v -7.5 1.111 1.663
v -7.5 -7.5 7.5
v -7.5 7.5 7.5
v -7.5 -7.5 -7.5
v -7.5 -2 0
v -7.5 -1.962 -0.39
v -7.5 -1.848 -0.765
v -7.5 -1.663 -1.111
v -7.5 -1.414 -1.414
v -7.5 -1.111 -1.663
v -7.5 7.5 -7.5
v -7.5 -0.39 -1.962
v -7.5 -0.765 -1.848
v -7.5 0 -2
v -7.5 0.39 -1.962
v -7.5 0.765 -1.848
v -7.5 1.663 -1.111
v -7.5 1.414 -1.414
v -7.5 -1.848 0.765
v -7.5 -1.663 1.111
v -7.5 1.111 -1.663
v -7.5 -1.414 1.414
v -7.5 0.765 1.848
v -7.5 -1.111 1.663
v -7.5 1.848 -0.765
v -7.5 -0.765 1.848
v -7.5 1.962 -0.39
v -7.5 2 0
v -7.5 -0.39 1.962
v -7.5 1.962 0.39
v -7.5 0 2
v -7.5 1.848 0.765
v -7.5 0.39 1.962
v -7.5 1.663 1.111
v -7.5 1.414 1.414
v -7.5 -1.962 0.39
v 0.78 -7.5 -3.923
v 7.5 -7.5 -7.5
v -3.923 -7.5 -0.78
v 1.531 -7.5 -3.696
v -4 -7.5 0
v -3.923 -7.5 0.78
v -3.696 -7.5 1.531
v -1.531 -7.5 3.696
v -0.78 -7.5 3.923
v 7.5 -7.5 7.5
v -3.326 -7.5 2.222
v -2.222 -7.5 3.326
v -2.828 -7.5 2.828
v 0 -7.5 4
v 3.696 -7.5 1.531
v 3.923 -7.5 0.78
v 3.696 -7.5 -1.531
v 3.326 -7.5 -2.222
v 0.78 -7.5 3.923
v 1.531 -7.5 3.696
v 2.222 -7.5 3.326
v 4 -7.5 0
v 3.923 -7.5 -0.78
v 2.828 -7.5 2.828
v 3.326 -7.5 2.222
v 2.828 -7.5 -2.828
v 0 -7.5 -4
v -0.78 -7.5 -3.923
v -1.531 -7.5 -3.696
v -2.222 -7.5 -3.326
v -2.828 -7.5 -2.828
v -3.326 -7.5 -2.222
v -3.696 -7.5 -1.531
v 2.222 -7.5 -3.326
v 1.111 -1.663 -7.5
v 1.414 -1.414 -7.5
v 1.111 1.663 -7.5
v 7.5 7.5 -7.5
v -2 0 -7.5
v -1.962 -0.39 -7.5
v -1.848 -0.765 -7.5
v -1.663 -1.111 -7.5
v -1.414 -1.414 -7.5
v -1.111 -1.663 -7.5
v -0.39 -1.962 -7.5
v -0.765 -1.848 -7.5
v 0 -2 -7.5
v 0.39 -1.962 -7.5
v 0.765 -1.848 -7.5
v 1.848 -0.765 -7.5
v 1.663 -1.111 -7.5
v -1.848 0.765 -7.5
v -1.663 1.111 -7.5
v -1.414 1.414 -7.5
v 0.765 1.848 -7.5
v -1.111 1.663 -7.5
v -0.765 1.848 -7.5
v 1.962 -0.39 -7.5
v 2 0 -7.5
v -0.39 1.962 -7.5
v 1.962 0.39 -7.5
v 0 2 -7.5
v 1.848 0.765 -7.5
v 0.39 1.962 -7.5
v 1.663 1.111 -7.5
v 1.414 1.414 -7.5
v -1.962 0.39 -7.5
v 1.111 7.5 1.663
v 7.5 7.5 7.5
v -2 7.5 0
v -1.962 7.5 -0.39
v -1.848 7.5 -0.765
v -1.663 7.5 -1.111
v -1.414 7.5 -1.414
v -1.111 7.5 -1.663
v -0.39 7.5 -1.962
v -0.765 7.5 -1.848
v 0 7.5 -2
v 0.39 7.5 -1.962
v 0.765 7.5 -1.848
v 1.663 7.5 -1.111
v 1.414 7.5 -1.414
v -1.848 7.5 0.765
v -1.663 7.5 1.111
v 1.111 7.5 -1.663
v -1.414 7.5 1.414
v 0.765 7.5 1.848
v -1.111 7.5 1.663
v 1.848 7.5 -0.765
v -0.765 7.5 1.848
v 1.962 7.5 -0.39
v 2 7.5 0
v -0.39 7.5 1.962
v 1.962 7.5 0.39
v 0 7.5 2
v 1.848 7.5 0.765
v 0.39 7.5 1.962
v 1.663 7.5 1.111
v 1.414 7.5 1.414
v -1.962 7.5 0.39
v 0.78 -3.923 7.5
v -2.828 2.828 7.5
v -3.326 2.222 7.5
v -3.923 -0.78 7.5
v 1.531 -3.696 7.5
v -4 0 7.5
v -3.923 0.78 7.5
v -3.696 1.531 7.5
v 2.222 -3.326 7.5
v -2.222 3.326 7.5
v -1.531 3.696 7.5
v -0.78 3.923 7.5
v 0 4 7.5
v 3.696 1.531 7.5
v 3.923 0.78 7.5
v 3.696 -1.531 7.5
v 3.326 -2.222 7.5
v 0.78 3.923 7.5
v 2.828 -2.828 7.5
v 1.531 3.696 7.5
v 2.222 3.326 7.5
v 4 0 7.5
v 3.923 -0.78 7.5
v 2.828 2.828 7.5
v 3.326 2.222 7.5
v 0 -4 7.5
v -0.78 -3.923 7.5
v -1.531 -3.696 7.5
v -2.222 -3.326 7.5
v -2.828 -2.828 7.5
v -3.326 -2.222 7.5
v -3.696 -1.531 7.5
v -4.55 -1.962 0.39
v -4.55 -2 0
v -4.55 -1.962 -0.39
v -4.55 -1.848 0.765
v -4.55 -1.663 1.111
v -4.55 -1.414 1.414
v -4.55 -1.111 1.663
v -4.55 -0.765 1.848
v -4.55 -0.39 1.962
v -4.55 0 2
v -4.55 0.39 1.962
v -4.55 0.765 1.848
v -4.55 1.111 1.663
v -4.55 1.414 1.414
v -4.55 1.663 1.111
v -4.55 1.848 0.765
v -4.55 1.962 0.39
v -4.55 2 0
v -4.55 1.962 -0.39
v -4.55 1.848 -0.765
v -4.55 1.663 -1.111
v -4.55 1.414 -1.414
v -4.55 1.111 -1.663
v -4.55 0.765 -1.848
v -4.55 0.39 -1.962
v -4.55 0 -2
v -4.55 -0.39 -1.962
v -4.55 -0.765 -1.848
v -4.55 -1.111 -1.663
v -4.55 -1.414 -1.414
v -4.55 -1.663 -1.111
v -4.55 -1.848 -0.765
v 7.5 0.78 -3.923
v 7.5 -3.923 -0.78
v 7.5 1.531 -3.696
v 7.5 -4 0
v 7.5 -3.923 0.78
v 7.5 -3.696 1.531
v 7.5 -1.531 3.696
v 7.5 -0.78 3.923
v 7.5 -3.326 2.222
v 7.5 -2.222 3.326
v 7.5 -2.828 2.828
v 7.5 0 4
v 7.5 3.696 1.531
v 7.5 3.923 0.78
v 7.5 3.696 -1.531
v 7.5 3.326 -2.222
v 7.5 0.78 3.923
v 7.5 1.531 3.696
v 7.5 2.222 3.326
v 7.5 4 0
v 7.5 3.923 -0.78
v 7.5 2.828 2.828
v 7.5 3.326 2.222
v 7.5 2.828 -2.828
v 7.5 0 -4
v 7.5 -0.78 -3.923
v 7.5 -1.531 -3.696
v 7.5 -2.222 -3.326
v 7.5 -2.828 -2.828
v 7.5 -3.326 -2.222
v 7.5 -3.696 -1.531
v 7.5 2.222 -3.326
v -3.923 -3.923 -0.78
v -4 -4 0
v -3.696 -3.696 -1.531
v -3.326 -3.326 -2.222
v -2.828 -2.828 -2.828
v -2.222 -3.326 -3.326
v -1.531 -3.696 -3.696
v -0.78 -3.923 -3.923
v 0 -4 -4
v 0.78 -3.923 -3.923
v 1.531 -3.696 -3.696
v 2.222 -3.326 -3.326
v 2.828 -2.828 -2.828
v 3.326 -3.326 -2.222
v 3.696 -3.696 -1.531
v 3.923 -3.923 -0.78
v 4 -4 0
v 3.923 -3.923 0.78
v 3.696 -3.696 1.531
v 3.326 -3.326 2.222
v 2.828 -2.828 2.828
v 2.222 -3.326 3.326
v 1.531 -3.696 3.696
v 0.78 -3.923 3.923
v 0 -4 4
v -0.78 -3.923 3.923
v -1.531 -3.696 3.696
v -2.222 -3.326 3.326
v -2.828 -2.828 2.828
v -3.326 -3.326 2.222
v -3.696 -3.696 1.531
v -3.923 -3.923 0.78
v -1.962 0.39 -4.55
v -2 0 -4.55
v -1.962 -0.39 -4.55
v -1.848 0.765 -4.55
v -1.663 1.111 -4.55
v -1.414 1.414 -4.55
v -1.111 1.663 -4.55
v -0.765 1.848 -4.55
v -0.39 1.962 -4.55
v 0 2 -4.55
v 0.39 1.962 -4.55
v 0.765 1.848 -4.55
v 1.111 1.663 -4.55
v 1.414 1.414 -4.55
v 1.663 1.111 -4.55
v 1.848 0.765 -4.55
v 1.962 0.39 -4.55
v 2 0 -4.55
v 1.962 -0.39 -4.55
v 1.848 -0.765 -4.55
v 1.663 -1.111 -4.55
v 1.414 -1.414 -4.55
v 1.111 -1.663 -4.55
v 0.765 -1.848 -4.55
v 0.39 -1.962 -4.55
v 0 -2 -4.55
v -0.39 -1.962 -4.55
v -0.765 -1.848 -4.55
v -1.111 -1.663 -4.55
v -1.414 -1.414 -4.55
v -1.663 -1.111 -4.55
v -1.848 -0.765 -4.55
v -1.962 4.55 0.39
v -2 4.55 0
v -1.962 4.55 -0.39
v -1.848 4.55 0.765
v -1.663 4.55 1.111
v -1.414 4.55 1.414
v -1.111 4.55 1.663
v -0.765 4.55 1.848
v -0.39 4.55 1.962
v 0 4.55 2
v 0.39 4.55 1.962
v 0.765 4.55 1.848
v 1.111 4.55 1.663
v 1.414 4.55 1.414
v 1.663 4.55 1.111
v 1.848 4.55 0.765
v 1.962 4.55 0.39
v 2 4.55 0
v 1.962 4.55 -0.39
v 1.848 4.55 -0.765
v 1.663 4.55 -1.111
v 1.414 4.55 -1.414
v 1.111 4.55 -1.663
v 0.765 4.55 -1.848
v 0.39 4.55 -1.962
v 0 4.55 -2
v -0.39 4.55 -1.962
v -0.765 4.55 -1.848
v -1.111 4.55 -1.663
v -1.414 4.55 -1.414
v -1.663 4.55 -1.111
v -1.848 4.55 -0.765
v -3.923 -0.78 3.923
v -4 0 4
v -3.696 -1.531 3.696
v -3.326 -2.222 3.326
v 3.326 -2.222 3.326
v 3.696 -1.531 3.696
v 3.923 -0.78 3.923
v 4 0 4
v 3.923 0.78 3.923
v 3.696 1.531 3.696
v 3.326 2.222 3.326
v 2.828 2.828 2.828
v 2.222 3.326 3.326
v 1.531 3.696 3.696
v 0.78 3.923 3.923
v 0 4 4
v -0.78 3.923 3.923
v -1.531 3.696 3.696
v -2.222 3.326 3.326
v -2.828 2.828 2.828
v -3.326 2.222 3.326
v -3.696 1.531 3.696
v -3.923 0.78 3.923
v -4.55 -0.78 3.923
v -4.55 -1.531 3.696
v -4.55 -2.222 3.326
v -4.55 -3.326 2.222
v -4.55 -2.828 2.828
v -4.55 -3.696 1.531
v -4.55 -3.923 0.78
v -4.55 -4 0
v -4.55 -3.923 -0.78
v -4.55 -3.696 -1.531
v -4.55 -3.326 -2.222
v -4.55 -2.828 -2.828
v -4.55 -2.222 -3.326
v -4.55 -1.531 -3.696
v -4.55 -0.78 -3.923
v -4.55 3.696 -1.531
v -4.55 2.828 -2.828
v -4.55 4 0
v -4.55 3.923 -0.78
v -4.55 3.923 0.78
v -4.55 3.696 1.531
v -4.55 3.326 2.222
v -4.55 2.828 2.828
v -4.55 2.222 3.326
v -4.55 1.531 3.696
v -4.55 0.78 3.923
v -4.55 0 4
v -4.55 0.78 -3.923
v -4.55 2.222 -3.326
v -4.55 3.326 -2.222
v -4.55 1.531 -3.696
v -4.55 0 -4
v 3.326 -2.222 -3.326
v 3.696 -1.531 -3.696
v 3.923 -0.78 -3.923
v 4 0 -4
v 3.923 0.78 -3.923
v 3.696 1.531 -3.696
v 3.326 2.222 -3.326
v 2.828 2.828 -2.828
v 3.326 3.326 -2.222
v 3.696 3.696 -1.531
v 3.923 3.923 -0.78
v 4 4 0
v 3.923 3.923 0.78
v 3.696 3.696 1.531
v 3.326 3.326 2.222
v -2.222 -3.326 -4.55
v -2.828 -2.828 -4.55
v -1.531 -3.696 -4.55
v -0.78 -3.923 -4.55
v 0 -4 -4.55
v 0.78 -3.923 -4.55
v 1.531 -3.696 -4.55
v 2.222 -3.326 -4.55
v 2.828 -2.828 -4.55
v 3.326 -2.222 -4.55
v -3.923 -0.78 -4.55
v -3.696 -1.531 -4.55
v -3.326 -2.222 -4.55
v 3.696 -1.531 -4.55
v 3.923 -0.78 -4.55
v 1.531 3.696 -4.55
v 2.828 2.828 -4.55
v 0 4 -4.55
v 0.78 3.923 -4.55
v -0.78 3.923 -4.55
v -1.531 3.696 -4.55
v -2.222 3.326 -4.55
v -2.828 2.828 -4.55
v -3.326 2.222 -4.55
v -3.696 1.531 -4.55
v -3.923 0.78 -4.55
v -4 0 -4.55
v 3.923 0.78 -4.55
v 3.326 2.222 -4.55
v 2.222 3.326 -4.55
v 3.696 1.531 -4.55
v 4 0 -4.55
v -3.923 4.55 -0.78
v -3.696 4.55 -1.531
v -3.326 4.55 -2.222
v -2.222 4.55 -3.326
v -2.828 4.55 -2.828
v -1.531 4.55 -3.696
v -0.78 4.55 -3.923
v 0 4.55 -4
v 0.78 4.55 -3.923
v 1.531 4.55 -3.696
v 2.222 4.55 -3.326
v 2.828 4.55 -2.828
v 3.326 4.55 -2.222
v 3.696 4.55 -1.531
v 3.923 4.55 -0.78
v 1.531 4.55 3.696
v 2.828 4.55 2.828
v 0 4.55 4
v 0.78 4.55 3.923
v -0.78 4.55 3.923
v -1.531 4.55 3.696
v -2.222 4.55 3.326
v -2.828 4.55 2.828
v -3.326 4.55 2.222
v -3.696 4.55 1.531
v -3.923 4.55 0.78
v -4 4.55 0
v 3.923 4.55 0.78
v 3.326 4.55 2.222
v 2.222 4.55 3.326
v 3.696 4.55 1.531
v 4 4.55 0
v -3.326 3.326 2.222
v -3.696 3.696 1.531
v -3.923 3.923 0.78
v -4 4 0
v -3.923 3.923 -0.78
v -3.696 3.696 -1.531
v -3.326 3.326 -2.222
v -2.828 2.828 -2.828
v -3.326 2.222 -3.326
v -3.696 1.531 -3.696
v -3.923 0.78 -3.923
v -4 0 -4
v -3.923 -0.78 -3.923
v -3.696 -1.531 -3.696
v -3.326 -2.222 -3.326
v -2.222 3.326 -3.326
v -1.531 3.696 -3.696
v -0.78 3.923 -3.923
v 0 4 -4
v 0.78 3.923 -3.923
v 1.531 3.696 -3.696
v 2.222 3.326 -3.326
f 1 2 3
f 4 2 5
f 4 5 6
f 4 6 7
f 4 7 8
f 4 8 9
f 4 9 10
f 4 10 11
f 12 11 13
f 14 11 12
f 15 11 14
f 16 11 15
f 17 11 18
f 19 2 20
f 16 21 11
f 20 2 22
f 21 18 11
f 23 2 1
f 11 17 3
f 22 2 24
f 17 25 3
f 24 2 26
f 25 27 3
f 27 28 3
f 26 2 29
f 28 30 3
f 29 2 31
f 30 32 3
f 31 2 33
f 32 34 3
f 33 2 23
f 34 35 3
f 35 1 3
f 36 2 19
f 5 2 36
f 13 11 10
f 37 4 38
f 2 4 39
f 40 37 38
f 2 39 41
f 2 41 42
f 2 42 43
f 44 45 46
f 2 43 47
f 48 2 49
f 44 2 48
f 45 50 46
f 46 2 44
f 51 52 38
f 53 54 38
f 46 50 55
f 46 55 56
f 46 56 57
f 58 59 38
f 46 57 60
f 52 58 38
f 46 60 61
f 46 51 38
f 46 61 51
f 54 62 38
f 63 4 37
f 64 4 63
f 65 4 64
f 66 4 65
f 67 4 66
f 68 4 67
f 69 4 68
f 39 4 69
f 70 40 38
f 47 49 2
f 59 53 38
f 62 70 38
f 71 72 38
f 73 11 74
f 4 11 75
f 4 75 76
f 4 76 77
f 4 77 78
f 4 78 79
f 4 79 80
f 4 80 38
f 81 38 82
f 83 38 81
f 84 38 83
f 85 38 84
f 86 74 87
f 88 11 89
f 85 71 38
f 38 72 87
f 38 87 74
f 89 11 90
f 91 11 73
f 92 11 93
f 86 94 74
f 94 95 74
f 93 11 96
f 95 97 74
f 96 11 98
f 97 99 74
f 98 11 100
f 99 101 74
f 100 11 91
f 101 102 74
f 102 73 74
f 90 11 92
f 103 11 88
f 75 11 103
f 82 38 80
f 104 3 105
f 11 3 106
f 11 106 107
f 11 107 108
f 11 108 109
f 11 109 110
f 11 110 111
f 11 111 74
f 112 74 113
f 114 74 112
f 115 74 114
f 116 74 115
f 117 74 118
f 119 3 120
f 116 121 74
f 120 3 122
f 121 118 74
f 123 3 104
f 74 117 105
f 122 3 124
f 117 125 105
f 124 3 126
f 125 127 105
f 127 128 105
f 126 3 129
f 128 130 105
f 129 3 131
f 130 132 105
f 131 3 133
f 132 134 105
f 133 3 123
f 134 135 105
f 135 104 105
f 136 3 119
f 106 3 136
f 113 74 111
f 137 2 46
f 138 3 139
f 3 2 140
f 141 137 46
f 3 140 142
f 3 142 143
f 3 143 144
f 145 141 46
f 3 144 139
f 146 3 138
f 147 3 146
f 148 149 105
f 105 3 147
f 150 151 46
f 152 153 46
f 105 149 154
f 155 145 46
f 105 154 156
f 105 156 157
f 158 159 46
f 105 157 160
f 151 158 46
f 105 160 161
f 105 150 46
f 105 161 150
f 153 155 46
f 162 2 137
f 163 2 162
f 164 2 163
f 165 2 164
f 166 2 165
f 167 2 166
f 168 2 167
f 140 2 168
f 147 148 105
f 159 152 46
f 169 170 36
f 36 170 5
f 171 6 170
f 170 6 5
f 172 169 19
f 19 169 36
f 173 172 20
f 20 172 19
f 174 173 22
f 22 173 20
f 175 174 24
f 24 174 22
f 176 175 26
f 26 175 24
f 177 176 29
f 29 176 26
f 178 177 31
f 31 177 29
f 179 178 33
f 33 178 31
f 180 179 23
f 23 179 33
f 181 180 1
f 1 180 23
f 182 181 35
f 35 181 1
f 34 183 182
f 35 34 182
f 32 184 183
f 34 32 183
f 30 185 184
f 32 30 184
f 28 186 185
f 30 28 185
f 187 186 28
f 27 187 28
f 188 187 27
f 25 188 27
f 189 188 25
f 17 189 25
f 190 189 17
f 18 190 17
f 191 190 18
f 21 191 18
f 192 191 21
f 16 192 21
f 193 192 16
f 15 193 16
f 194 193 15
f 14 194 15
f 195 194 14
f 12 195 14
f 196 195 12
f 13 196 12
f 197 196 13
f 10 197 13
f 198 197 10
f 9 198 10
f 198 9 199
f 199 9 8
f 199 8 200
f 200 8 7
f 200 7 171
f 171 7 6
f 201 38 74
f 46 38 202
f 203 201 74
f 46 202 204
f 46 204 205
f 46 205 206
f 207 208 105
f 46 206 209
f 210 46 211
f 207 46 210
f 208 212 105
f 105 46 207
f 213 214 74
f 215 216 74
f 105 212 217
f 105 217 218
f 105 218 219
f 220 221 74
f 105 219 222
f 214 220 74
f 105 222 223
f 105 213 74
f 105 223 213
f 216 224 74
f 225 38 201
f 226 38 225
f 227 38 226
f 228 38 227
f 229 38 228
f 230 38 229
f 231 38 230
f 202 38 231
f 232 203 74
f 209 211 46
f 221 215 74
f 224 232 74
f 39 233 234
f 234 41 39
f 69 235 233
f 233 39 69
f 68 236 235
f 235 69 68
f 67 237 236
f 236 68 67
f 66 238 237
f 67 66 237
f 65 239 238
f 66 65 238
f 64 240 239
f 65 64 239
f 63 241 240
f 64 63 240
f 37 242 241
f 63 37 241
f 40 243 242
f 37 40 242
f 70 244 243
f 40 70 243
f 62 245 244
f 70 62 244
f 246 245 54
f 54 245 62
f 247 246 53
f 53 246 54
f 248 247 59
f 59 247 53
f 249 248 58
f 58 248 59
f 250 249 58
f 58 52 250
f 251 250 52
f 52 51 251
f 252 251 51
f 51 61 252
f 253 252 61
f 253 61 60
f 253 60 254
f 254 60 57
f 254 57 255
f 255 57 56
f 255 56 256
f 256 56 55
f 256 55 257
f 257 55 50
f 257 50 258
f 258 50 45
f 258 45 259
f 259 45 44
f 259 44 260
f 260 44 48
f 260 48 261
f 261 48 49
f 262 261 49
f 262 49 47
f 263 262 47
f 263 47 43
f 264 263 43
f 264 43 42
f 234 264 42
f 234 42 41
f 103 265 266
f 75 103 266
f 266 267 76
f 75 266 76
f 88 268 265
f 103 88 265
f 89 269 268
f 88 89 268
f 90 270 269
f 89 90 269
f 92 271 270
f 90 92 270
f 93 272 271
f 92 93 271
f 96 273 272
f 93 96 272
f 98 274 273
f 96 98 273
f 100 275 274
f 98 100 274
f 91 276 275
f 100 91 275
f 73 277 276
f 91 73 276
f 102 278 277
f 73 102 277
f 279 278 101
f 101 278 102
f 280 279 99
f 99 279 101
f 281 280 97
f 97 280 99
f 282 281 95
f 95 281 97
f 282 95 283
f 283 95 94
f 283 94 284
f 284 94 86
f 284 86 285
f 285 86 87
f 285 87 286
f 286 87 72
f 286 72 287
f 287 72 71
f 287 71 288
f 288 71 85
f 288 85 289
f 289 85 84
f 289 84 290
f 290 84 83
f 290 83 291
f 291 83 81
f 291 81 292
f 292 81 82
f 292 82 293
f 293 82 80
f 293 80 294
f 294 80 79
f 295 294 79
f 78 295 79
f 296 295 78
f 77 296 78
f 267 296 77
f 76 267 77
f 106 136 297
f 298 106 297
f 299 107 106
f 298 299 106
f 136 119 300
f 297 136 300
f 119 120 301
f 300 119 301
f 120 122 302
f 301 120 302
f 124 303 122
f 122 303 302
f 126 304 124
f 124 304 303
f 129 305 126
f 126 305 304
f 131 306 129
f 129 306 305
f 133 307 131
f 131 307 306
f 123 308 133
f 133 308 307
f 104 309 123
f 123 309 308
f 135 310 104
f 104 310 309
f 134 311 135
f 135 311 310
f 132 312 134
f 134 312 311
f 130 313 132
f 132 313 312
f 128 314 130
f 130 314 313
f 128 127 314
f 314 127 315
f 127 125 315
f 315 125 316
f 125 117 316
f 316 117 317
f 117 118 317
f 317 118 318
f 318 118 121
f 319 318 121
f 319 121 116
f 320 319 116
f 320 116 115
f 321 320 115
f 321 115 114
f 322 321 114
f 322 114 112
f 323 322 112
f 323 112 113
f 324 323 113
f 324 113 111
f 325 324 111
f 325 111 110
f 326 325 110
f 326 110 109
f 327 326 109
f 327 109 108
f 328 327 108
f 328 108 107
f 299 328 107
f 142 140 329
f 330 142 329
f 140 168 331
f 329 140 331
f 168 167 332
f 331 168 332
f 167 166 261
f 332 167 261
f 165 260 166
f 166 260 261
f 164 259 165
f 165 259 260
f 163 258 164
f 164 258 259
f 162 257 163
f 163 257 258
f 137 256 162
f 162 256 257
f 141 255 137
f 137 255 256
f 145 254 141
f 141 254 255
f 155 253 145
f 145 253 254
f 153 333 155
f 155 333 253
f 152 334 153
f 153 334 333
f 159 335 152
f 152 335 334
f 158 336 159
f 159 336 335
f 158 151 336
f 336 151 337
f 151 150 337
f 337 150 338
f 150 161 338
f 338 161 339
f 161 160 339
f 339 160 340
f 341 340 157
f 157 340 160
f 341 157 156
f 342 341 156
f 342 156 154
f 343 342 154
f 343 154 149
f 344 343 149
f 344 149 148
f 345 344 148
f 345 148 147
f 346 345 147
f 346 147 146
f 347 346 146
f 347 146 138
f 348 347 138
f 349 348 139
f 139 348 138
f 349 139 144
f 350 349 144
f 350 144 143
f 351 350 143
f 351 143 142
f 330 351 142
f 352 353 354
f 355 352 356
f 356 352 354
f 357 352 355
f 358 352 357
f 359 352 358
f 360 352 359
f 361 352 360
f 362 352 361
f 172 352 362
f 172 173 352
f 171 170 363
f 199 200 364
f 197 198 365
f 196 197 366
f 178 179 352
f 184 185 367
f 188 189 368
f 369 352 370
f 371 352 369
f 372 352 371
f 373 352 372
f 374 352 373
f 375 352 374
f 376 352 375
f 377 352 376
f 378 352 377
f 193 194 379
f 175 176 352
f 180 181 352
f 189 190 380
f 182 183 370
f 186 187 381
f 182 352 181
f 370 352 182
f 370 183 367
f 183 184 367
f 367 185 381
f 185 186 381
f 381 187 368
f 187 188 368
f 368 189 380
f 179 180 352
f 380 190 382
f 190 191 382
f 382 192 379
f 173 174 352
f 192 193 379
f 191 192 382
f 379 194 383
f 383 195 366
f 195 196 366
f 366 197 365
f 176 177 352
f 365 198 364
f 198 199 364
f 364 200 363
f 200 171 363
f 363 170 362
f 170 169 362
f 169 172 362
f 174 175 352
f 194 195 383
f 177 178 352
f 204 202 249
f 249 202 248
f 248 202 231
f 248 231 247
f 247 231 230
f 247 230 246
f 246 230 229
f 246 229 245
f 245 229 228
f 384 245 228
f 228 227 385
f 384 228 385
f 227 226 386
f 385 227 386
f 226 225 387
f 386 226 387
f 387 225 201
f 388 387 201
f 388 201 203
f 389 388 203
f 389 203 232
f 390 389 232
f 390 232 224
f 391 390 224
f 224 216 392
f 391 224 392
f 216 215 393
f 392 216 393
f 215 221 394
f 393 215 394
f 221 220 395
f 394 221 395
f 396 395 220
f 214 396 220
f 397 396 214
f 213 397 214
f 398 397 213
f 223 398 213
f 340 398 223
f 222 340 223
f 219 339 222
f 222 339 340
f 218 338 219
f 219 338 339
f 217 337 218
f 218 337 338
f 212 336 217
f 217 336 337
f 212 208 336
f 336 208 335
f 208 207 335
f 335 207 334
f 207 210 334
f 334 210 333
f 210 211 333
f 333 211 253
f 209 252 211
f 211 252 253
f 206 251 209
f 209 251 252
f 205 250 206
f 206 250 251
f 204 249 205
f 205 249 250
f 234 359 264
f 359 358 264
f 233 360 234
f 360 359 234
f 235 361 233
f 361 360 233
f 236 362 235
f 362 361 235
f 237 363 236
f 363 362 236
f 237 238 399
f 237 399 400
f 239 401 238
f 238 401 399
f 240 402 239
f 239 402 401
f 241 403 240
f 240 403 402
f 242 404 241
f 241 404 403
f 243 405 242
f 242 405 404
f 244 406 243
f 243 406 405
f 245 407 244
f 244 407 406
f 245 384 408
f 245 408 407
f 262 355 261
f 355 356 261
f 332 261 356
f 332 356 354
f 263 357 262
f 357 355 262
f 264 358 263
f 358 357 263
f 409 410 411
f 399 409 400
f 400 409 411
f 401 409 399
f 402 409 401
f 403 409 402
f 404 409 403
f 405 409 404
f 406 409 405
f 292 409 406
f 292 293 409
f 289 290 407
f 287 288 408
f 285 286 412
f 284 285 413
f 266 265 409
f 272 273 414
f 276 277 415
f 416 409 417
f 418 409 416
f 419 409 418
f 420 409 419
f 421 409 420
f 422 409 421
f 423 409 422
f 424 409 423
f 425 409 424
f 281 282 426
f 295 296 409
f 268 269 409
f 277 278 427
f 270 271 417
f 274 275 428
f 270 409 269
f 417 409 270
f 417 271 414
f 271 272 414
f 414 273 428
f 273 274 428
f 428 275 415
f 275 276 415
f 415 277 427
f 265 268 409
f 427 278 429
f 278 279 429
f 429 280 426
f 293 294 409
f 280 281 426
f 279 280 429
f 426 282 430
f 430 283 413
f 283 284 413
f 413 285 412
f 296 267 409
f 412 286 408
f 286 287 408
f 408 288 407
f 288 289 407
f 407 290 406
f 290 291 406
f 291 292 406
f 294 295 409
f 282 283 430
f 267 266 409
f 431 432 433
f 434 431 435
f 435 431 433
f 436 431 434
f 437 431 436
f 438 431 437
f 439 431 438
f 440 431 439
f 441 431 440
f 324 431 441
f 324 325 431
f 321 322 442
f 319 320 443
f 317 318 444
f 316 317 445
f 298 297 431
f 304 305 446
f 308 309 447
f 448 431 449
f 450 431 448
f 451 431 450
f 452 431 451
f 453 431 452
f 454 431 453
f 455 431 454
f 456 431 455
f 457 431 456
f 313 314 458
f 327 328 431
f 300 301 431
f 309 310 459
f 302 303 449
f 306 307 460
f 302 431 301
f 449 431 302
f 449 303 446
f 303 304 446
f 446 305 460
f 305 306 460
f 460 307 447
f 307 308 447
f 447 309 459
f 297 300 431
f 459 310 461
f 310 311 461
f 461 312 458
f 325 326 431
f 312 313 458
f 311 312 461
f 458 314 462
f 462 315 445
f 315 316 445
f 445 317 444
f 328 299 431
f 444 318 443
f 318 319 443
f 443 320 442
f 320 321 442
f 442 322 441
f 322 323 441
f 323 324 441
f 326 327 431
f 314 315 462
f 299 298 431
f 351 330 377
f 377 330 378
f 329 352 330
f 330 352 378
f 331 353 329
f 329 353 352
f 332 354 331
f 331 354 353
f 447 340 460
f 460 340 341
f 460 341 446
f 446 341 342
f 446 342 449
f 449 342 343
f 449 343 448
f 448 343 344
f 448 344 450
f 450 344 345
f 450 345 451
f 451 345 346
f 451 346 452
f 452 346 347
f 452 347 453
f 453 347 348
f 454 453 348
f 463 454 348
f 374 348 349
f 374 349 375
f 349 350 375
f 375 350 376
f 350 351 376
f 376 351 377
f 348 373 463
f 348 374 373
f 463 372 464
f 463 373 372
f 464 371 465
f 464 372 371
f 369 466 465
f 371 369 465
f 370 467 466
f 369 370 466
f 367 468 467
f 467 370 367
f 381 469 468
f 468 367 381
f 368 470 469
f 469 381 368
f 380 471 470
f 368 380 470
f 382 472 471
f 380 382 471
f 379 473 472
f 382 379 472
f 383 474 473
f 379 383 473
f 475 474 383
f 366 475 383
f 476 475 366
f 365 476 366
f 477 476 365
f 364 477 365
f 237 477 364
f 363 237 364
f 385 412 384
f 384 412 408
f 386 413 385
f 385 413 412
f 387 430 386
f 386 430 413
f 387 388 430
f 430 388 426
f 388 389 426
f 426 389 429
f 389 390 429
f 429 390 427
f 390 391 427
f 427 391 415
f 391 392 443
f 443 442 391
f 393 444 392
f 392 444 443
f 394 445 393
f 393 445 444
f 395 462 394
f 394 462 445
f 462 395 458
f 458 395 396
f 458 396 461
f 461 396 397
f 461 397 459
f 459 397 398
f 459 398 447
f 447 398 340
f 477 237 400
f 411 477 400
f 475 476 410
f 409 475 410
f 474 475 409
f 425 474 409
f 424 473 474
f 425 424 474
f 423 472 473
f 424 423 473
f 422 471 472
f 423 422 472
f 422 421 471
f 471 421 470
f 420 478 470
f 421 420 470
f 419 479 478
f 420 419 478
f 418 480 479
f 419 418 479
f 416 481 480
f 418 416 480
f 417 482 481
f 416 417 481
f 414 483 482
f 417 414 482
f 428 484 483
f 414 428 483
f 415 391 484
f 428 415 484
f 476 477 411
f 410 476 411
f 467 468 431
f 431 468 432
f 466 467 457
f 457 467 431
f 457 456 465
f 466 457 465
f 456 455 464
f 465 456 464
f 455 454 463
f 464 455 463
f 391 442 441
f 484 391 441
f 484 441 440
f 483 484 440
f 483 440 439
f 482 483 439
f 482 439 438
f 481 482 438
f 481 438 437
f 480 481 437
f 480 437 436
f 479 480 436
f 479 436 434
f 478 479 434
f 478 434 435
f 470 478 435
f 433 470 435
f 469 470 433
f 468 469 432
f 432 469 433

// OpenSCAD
module corner_hole() {
	union() {
		translate([0,0,3/2 ]) cylinder(h=( (15-3))+0.1,r=4,center=true, $fn=32);
		translate([0,0,+(3/2) - (15/2)]) cylinder(h=(3+0.1),r=2,center=true, $fn=32);
	}
}
module corner() {
	difference() {
		union() {
			cube(15, center=true);
		}

		rotate([0,0,0]) corner_hole();
		rotate([90,0,0]) corner_hole();
		rotate([0,90,0]) corner_hole();

	}
}

corner();
